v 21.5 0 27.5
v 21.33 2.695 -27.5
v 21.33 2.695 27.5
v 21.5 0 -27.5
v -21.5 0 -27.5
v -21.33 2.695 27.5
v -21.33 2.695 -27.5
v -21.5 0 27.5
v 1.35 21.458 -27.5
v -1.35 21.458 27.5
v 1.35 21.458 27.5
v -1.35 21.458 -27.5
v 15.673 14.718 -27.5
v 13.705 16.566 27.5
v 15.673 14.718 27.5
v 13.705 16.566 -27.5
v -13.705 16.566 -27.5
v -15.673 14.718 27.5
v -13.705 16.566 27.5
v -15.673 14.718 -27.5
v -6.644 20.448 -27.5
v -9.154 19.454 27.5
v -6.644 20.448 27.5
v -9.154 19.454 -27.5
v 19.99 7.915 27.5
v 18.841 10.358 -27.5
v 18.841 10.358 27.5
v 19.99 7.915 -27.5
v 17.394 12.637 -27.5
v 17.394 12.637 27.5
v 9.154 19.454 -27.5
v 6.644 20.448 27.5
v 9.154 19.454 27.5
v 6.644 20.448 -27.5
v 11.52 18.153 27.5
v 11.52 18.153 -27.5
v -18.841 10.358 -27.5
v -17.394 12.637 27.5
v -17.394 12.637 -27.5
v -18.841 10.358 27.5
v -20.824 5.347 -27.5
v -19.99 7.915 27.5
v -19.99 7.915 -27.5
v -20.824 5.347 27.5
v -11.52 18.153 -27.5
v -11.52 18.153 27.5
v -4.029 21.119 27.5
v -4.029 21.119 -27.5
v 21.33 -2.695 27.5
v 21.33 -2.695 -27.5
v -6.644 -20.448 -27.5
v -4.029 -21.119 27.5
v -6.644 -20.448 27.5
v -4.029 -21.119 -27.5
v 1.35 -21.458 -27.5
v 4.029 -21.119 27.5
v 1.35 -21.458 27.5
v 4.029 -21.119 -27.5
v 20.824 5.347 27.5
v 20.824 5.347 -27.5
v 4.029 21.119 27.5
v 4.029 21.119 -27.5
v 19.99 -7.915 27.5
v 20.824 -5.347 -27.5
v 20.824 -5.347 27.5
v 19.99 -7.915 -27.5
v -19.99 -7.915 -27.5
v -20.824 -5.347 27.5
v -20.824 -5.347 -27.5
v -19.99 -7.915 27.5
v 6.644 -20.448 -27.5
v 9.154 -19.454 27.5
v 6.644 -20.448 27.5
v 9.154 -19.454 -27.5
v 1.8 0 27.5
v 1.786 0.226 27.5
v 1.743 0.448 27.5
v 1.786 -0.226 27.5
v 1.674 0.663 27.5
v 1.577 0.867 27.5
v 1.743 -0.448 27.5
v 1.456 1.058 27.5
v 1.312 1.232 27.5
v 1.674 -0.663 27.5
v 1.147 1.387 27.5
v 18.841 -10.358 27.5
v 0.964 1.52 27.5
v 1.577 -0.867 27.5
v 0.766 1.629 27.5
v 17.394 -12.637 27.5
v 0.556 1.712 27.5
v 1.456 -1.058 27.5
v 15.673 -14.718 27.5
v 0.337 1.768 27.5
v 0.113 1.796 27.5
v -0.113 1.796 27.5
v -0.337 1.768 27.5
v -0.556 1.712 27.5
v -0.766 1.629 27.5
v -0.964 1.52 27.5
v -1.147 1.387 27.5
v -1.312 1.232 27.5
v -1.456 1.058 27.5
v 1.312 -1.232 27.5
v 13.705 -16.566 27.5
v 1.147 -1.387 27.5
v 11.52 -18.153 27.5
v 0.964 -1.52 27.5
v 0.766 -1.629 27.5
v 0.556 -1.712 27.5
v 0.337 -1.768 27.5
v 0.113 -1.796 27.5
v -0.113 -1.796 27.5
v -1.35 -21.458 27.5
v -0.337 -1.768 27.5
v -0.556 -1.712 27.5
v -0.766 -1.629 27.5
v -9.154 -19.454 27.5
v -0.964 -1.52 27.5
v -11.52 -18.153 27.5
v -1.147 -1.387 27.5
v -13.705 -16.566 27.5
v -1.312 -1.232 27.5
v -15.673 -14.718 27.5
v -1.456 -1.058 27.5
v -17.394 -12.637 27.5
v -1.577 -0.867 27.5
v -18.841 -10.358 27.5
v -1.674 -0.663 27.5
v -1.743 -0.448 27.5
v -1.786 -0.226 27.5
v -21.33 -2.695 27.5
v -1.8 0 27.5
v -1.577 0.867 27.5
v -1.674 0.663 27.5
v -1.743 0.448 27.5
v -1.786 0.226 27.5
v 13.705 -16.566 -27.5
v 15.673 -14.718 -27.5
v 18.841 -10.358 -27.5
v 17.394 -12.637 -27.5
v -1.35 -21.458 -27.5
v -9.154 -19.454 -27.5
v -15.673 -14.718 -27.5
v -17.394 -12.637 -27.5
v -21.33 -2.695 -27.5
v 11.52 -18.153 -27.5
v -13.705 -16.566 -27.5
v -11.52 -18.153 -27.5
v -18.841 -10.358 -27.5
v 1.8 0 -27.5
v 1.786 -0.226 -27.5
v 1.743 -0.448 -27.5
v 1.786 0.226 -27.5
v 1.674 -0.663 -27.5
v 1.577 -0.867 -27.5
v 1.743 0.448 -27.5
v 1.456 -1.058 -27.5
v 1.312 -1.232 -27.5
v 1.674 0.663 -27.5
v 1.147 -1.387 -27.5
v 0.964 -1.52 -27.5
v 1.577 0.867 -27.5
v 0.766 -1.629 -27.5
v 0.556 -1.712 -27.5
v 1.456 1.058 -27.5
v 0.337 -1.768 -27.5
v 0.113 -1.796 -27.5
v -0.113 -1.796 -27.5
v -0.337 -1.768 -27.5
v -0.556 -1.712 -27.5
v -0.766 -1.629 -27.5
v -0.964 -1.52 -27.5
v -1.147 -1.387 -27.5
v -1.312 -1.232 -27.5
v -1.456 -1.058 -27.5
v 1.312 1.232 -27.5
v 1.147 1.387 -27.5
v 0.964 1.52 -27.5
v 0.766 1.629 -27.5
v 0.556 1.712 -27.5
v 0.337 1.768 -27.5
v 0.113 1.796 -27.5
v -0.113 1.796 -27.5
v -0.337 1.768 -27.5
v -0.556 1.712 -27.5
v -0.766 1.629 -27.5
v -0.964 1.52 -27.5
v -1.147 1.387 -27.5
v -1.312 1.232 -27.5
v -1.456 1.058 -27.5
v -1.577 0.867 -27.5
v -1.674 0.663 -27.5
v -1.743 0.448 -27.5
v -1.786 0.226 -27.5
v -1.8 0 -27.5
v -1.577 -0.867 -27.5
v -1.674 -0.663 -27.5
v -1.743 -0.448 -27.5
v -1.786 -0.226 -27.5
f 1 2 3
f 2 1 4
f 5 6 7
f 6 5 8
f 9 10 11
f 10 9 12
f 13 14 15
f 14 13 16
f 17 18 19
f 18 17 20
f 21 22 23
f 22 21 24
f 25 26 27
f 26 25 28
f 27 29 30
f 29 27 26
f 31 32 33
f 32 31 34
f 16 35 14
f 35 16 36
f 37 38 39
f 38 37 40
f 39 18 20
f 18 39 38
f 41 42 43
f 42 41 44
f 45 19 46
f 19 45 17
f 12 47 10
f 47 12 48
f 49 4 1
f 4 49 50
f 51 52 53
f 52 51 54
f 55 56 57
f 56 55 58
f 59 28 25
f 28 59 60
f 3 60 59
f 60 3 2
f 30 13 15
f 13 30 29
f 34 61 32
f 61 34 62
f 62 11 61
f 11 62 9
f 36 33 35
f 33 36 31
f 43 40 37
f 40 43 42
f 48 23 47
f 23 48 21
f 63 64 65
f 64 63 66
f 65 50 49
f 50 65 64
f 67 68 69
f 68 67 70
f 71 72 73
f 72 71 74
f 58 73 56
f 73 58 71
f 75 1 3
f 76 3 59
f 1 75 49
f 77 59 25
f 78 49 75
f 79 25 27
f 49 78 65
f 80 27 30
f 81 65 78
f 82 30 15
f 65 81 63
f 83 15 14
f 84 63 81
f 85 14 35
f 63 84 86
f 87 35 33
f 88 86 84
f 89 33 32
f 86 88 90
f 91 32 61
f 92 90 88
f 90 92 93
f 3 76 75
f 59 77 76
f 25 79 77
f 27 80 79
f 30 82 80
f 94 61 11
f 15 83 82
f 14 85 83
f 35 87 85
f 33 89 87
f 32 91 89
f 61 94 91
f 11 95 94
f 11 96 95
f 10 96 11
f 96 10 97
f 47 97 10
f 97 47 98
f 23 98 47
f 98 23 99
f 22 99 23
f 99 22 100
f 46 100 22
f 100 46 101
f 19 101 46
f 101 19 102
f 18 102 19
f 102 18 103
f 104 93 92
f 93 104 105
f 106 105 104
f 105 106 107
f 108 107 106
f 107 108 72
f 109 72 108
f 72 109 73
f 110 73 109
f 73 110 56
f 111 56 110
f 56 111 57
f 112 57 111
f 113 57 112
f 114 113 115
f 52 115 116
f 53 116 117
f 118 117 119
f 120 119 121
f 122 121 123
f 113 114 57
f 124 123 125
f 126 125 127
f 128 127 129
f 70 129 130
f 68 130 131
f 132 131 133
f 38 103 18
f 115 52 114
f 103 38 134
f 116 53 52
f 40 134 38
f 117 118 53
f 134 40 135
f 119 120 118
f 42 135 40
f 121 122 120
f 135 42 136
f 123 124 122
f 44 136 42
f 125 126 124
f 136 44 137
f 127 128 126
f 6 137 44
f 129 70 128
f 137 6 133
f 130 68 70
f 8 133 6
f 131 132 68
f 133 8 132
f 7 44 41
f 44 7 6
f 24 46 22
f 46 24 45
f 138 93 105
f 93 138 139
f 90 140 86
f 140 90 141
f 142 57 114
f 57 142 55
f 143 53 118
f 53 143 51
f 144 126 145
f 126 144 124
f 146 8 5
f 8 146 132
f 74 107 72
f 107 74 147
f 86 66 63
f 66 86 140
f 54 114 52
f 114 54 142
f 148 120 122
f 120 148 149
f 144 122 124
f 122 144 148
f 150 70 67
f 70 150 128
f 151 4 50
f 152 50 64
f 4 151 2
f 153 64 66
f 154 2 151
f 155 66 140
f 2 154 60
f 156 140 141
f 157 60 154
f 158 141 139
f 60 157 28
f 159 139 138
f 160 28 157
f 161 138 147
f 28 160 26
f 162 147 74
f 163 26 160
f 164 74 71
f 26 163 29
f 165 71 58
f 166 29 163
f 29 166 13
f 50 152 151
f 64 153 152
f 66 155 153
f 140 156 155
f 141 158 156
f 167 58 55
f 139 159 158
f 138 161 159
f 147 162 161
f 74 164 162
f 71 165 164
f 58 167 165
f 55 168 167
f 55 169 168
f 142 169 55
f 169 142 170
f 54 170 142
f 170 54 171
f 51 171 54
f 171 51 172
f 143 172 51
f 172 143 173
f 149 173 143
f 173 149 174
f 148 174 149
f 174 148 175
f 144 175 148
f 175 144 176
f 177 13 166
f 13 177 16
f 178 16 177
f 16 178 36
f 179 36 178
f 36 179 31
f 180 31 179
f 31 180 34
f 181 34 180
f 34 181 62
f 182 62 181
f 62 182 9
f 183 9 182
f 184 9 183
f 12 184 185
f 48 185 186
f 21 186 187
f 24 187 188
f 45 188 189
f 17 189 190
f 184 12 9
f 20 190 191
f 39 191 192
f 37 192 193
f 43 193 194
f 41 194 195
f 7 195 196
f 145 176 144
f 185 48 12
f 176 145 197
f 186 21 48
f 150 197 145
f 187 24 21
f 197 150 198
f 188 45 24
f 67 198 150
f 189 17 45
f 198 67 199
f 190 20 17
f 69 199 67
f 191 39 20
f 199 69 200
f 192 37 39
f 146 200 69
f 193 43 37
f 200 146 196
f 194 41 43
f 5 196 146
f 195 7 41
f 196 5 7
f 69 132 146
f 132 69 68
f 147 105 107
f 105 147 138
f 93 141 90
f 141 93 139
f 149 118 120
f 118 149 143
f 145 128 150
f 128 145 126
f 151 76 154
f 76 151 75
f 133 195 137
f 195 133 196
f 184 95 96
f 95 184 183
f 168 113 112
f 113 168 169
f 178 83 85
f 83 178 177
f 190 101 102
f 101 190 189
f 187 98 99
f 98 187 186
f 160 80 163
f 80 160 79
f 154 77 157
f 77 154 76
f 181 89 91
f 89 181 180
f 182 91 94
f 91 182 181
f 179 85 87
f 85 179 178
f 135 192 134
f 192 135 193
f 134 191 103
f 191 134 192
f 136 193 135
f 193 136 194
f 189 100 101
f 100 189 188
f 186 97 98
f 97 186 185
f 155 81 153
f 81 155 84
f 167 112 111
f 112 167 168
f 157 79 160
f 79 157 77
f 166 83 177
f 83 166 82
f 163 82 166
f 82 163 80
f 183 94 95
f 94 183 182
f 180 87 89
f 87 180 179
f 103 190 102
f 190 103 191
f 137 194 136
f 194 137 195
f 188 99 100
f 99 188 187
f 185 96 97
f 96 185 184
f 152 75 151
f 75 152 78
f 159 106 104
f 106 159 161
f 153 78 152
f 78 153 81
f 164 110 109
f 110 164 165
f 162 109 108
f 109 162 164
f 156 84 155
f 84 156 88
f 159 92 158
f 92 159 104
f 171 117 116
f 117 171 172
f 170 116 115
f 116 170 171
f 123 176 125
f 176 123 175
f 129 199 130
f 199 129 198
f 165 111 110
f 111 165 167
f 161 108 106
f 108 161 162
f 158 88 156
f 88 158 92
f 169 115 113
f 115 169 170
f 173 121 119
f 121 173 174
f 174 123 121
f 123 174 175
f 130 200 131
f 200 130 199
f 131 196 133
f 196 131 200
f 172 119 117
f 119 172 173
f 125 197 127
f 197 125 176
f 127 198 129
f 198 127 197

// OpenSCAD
$fn = 50;


difference() {
	union() {
		translate(v = [0, 0, -27.5000000000]) {
			cylinder(h = 55, r = 21.5000000000);
		}
	}
	union() {
		translate(v = [0, 0, -100.0000000000]) {
			cylinder(h = 200, r = 1.8000000000);
		}
	}
}
